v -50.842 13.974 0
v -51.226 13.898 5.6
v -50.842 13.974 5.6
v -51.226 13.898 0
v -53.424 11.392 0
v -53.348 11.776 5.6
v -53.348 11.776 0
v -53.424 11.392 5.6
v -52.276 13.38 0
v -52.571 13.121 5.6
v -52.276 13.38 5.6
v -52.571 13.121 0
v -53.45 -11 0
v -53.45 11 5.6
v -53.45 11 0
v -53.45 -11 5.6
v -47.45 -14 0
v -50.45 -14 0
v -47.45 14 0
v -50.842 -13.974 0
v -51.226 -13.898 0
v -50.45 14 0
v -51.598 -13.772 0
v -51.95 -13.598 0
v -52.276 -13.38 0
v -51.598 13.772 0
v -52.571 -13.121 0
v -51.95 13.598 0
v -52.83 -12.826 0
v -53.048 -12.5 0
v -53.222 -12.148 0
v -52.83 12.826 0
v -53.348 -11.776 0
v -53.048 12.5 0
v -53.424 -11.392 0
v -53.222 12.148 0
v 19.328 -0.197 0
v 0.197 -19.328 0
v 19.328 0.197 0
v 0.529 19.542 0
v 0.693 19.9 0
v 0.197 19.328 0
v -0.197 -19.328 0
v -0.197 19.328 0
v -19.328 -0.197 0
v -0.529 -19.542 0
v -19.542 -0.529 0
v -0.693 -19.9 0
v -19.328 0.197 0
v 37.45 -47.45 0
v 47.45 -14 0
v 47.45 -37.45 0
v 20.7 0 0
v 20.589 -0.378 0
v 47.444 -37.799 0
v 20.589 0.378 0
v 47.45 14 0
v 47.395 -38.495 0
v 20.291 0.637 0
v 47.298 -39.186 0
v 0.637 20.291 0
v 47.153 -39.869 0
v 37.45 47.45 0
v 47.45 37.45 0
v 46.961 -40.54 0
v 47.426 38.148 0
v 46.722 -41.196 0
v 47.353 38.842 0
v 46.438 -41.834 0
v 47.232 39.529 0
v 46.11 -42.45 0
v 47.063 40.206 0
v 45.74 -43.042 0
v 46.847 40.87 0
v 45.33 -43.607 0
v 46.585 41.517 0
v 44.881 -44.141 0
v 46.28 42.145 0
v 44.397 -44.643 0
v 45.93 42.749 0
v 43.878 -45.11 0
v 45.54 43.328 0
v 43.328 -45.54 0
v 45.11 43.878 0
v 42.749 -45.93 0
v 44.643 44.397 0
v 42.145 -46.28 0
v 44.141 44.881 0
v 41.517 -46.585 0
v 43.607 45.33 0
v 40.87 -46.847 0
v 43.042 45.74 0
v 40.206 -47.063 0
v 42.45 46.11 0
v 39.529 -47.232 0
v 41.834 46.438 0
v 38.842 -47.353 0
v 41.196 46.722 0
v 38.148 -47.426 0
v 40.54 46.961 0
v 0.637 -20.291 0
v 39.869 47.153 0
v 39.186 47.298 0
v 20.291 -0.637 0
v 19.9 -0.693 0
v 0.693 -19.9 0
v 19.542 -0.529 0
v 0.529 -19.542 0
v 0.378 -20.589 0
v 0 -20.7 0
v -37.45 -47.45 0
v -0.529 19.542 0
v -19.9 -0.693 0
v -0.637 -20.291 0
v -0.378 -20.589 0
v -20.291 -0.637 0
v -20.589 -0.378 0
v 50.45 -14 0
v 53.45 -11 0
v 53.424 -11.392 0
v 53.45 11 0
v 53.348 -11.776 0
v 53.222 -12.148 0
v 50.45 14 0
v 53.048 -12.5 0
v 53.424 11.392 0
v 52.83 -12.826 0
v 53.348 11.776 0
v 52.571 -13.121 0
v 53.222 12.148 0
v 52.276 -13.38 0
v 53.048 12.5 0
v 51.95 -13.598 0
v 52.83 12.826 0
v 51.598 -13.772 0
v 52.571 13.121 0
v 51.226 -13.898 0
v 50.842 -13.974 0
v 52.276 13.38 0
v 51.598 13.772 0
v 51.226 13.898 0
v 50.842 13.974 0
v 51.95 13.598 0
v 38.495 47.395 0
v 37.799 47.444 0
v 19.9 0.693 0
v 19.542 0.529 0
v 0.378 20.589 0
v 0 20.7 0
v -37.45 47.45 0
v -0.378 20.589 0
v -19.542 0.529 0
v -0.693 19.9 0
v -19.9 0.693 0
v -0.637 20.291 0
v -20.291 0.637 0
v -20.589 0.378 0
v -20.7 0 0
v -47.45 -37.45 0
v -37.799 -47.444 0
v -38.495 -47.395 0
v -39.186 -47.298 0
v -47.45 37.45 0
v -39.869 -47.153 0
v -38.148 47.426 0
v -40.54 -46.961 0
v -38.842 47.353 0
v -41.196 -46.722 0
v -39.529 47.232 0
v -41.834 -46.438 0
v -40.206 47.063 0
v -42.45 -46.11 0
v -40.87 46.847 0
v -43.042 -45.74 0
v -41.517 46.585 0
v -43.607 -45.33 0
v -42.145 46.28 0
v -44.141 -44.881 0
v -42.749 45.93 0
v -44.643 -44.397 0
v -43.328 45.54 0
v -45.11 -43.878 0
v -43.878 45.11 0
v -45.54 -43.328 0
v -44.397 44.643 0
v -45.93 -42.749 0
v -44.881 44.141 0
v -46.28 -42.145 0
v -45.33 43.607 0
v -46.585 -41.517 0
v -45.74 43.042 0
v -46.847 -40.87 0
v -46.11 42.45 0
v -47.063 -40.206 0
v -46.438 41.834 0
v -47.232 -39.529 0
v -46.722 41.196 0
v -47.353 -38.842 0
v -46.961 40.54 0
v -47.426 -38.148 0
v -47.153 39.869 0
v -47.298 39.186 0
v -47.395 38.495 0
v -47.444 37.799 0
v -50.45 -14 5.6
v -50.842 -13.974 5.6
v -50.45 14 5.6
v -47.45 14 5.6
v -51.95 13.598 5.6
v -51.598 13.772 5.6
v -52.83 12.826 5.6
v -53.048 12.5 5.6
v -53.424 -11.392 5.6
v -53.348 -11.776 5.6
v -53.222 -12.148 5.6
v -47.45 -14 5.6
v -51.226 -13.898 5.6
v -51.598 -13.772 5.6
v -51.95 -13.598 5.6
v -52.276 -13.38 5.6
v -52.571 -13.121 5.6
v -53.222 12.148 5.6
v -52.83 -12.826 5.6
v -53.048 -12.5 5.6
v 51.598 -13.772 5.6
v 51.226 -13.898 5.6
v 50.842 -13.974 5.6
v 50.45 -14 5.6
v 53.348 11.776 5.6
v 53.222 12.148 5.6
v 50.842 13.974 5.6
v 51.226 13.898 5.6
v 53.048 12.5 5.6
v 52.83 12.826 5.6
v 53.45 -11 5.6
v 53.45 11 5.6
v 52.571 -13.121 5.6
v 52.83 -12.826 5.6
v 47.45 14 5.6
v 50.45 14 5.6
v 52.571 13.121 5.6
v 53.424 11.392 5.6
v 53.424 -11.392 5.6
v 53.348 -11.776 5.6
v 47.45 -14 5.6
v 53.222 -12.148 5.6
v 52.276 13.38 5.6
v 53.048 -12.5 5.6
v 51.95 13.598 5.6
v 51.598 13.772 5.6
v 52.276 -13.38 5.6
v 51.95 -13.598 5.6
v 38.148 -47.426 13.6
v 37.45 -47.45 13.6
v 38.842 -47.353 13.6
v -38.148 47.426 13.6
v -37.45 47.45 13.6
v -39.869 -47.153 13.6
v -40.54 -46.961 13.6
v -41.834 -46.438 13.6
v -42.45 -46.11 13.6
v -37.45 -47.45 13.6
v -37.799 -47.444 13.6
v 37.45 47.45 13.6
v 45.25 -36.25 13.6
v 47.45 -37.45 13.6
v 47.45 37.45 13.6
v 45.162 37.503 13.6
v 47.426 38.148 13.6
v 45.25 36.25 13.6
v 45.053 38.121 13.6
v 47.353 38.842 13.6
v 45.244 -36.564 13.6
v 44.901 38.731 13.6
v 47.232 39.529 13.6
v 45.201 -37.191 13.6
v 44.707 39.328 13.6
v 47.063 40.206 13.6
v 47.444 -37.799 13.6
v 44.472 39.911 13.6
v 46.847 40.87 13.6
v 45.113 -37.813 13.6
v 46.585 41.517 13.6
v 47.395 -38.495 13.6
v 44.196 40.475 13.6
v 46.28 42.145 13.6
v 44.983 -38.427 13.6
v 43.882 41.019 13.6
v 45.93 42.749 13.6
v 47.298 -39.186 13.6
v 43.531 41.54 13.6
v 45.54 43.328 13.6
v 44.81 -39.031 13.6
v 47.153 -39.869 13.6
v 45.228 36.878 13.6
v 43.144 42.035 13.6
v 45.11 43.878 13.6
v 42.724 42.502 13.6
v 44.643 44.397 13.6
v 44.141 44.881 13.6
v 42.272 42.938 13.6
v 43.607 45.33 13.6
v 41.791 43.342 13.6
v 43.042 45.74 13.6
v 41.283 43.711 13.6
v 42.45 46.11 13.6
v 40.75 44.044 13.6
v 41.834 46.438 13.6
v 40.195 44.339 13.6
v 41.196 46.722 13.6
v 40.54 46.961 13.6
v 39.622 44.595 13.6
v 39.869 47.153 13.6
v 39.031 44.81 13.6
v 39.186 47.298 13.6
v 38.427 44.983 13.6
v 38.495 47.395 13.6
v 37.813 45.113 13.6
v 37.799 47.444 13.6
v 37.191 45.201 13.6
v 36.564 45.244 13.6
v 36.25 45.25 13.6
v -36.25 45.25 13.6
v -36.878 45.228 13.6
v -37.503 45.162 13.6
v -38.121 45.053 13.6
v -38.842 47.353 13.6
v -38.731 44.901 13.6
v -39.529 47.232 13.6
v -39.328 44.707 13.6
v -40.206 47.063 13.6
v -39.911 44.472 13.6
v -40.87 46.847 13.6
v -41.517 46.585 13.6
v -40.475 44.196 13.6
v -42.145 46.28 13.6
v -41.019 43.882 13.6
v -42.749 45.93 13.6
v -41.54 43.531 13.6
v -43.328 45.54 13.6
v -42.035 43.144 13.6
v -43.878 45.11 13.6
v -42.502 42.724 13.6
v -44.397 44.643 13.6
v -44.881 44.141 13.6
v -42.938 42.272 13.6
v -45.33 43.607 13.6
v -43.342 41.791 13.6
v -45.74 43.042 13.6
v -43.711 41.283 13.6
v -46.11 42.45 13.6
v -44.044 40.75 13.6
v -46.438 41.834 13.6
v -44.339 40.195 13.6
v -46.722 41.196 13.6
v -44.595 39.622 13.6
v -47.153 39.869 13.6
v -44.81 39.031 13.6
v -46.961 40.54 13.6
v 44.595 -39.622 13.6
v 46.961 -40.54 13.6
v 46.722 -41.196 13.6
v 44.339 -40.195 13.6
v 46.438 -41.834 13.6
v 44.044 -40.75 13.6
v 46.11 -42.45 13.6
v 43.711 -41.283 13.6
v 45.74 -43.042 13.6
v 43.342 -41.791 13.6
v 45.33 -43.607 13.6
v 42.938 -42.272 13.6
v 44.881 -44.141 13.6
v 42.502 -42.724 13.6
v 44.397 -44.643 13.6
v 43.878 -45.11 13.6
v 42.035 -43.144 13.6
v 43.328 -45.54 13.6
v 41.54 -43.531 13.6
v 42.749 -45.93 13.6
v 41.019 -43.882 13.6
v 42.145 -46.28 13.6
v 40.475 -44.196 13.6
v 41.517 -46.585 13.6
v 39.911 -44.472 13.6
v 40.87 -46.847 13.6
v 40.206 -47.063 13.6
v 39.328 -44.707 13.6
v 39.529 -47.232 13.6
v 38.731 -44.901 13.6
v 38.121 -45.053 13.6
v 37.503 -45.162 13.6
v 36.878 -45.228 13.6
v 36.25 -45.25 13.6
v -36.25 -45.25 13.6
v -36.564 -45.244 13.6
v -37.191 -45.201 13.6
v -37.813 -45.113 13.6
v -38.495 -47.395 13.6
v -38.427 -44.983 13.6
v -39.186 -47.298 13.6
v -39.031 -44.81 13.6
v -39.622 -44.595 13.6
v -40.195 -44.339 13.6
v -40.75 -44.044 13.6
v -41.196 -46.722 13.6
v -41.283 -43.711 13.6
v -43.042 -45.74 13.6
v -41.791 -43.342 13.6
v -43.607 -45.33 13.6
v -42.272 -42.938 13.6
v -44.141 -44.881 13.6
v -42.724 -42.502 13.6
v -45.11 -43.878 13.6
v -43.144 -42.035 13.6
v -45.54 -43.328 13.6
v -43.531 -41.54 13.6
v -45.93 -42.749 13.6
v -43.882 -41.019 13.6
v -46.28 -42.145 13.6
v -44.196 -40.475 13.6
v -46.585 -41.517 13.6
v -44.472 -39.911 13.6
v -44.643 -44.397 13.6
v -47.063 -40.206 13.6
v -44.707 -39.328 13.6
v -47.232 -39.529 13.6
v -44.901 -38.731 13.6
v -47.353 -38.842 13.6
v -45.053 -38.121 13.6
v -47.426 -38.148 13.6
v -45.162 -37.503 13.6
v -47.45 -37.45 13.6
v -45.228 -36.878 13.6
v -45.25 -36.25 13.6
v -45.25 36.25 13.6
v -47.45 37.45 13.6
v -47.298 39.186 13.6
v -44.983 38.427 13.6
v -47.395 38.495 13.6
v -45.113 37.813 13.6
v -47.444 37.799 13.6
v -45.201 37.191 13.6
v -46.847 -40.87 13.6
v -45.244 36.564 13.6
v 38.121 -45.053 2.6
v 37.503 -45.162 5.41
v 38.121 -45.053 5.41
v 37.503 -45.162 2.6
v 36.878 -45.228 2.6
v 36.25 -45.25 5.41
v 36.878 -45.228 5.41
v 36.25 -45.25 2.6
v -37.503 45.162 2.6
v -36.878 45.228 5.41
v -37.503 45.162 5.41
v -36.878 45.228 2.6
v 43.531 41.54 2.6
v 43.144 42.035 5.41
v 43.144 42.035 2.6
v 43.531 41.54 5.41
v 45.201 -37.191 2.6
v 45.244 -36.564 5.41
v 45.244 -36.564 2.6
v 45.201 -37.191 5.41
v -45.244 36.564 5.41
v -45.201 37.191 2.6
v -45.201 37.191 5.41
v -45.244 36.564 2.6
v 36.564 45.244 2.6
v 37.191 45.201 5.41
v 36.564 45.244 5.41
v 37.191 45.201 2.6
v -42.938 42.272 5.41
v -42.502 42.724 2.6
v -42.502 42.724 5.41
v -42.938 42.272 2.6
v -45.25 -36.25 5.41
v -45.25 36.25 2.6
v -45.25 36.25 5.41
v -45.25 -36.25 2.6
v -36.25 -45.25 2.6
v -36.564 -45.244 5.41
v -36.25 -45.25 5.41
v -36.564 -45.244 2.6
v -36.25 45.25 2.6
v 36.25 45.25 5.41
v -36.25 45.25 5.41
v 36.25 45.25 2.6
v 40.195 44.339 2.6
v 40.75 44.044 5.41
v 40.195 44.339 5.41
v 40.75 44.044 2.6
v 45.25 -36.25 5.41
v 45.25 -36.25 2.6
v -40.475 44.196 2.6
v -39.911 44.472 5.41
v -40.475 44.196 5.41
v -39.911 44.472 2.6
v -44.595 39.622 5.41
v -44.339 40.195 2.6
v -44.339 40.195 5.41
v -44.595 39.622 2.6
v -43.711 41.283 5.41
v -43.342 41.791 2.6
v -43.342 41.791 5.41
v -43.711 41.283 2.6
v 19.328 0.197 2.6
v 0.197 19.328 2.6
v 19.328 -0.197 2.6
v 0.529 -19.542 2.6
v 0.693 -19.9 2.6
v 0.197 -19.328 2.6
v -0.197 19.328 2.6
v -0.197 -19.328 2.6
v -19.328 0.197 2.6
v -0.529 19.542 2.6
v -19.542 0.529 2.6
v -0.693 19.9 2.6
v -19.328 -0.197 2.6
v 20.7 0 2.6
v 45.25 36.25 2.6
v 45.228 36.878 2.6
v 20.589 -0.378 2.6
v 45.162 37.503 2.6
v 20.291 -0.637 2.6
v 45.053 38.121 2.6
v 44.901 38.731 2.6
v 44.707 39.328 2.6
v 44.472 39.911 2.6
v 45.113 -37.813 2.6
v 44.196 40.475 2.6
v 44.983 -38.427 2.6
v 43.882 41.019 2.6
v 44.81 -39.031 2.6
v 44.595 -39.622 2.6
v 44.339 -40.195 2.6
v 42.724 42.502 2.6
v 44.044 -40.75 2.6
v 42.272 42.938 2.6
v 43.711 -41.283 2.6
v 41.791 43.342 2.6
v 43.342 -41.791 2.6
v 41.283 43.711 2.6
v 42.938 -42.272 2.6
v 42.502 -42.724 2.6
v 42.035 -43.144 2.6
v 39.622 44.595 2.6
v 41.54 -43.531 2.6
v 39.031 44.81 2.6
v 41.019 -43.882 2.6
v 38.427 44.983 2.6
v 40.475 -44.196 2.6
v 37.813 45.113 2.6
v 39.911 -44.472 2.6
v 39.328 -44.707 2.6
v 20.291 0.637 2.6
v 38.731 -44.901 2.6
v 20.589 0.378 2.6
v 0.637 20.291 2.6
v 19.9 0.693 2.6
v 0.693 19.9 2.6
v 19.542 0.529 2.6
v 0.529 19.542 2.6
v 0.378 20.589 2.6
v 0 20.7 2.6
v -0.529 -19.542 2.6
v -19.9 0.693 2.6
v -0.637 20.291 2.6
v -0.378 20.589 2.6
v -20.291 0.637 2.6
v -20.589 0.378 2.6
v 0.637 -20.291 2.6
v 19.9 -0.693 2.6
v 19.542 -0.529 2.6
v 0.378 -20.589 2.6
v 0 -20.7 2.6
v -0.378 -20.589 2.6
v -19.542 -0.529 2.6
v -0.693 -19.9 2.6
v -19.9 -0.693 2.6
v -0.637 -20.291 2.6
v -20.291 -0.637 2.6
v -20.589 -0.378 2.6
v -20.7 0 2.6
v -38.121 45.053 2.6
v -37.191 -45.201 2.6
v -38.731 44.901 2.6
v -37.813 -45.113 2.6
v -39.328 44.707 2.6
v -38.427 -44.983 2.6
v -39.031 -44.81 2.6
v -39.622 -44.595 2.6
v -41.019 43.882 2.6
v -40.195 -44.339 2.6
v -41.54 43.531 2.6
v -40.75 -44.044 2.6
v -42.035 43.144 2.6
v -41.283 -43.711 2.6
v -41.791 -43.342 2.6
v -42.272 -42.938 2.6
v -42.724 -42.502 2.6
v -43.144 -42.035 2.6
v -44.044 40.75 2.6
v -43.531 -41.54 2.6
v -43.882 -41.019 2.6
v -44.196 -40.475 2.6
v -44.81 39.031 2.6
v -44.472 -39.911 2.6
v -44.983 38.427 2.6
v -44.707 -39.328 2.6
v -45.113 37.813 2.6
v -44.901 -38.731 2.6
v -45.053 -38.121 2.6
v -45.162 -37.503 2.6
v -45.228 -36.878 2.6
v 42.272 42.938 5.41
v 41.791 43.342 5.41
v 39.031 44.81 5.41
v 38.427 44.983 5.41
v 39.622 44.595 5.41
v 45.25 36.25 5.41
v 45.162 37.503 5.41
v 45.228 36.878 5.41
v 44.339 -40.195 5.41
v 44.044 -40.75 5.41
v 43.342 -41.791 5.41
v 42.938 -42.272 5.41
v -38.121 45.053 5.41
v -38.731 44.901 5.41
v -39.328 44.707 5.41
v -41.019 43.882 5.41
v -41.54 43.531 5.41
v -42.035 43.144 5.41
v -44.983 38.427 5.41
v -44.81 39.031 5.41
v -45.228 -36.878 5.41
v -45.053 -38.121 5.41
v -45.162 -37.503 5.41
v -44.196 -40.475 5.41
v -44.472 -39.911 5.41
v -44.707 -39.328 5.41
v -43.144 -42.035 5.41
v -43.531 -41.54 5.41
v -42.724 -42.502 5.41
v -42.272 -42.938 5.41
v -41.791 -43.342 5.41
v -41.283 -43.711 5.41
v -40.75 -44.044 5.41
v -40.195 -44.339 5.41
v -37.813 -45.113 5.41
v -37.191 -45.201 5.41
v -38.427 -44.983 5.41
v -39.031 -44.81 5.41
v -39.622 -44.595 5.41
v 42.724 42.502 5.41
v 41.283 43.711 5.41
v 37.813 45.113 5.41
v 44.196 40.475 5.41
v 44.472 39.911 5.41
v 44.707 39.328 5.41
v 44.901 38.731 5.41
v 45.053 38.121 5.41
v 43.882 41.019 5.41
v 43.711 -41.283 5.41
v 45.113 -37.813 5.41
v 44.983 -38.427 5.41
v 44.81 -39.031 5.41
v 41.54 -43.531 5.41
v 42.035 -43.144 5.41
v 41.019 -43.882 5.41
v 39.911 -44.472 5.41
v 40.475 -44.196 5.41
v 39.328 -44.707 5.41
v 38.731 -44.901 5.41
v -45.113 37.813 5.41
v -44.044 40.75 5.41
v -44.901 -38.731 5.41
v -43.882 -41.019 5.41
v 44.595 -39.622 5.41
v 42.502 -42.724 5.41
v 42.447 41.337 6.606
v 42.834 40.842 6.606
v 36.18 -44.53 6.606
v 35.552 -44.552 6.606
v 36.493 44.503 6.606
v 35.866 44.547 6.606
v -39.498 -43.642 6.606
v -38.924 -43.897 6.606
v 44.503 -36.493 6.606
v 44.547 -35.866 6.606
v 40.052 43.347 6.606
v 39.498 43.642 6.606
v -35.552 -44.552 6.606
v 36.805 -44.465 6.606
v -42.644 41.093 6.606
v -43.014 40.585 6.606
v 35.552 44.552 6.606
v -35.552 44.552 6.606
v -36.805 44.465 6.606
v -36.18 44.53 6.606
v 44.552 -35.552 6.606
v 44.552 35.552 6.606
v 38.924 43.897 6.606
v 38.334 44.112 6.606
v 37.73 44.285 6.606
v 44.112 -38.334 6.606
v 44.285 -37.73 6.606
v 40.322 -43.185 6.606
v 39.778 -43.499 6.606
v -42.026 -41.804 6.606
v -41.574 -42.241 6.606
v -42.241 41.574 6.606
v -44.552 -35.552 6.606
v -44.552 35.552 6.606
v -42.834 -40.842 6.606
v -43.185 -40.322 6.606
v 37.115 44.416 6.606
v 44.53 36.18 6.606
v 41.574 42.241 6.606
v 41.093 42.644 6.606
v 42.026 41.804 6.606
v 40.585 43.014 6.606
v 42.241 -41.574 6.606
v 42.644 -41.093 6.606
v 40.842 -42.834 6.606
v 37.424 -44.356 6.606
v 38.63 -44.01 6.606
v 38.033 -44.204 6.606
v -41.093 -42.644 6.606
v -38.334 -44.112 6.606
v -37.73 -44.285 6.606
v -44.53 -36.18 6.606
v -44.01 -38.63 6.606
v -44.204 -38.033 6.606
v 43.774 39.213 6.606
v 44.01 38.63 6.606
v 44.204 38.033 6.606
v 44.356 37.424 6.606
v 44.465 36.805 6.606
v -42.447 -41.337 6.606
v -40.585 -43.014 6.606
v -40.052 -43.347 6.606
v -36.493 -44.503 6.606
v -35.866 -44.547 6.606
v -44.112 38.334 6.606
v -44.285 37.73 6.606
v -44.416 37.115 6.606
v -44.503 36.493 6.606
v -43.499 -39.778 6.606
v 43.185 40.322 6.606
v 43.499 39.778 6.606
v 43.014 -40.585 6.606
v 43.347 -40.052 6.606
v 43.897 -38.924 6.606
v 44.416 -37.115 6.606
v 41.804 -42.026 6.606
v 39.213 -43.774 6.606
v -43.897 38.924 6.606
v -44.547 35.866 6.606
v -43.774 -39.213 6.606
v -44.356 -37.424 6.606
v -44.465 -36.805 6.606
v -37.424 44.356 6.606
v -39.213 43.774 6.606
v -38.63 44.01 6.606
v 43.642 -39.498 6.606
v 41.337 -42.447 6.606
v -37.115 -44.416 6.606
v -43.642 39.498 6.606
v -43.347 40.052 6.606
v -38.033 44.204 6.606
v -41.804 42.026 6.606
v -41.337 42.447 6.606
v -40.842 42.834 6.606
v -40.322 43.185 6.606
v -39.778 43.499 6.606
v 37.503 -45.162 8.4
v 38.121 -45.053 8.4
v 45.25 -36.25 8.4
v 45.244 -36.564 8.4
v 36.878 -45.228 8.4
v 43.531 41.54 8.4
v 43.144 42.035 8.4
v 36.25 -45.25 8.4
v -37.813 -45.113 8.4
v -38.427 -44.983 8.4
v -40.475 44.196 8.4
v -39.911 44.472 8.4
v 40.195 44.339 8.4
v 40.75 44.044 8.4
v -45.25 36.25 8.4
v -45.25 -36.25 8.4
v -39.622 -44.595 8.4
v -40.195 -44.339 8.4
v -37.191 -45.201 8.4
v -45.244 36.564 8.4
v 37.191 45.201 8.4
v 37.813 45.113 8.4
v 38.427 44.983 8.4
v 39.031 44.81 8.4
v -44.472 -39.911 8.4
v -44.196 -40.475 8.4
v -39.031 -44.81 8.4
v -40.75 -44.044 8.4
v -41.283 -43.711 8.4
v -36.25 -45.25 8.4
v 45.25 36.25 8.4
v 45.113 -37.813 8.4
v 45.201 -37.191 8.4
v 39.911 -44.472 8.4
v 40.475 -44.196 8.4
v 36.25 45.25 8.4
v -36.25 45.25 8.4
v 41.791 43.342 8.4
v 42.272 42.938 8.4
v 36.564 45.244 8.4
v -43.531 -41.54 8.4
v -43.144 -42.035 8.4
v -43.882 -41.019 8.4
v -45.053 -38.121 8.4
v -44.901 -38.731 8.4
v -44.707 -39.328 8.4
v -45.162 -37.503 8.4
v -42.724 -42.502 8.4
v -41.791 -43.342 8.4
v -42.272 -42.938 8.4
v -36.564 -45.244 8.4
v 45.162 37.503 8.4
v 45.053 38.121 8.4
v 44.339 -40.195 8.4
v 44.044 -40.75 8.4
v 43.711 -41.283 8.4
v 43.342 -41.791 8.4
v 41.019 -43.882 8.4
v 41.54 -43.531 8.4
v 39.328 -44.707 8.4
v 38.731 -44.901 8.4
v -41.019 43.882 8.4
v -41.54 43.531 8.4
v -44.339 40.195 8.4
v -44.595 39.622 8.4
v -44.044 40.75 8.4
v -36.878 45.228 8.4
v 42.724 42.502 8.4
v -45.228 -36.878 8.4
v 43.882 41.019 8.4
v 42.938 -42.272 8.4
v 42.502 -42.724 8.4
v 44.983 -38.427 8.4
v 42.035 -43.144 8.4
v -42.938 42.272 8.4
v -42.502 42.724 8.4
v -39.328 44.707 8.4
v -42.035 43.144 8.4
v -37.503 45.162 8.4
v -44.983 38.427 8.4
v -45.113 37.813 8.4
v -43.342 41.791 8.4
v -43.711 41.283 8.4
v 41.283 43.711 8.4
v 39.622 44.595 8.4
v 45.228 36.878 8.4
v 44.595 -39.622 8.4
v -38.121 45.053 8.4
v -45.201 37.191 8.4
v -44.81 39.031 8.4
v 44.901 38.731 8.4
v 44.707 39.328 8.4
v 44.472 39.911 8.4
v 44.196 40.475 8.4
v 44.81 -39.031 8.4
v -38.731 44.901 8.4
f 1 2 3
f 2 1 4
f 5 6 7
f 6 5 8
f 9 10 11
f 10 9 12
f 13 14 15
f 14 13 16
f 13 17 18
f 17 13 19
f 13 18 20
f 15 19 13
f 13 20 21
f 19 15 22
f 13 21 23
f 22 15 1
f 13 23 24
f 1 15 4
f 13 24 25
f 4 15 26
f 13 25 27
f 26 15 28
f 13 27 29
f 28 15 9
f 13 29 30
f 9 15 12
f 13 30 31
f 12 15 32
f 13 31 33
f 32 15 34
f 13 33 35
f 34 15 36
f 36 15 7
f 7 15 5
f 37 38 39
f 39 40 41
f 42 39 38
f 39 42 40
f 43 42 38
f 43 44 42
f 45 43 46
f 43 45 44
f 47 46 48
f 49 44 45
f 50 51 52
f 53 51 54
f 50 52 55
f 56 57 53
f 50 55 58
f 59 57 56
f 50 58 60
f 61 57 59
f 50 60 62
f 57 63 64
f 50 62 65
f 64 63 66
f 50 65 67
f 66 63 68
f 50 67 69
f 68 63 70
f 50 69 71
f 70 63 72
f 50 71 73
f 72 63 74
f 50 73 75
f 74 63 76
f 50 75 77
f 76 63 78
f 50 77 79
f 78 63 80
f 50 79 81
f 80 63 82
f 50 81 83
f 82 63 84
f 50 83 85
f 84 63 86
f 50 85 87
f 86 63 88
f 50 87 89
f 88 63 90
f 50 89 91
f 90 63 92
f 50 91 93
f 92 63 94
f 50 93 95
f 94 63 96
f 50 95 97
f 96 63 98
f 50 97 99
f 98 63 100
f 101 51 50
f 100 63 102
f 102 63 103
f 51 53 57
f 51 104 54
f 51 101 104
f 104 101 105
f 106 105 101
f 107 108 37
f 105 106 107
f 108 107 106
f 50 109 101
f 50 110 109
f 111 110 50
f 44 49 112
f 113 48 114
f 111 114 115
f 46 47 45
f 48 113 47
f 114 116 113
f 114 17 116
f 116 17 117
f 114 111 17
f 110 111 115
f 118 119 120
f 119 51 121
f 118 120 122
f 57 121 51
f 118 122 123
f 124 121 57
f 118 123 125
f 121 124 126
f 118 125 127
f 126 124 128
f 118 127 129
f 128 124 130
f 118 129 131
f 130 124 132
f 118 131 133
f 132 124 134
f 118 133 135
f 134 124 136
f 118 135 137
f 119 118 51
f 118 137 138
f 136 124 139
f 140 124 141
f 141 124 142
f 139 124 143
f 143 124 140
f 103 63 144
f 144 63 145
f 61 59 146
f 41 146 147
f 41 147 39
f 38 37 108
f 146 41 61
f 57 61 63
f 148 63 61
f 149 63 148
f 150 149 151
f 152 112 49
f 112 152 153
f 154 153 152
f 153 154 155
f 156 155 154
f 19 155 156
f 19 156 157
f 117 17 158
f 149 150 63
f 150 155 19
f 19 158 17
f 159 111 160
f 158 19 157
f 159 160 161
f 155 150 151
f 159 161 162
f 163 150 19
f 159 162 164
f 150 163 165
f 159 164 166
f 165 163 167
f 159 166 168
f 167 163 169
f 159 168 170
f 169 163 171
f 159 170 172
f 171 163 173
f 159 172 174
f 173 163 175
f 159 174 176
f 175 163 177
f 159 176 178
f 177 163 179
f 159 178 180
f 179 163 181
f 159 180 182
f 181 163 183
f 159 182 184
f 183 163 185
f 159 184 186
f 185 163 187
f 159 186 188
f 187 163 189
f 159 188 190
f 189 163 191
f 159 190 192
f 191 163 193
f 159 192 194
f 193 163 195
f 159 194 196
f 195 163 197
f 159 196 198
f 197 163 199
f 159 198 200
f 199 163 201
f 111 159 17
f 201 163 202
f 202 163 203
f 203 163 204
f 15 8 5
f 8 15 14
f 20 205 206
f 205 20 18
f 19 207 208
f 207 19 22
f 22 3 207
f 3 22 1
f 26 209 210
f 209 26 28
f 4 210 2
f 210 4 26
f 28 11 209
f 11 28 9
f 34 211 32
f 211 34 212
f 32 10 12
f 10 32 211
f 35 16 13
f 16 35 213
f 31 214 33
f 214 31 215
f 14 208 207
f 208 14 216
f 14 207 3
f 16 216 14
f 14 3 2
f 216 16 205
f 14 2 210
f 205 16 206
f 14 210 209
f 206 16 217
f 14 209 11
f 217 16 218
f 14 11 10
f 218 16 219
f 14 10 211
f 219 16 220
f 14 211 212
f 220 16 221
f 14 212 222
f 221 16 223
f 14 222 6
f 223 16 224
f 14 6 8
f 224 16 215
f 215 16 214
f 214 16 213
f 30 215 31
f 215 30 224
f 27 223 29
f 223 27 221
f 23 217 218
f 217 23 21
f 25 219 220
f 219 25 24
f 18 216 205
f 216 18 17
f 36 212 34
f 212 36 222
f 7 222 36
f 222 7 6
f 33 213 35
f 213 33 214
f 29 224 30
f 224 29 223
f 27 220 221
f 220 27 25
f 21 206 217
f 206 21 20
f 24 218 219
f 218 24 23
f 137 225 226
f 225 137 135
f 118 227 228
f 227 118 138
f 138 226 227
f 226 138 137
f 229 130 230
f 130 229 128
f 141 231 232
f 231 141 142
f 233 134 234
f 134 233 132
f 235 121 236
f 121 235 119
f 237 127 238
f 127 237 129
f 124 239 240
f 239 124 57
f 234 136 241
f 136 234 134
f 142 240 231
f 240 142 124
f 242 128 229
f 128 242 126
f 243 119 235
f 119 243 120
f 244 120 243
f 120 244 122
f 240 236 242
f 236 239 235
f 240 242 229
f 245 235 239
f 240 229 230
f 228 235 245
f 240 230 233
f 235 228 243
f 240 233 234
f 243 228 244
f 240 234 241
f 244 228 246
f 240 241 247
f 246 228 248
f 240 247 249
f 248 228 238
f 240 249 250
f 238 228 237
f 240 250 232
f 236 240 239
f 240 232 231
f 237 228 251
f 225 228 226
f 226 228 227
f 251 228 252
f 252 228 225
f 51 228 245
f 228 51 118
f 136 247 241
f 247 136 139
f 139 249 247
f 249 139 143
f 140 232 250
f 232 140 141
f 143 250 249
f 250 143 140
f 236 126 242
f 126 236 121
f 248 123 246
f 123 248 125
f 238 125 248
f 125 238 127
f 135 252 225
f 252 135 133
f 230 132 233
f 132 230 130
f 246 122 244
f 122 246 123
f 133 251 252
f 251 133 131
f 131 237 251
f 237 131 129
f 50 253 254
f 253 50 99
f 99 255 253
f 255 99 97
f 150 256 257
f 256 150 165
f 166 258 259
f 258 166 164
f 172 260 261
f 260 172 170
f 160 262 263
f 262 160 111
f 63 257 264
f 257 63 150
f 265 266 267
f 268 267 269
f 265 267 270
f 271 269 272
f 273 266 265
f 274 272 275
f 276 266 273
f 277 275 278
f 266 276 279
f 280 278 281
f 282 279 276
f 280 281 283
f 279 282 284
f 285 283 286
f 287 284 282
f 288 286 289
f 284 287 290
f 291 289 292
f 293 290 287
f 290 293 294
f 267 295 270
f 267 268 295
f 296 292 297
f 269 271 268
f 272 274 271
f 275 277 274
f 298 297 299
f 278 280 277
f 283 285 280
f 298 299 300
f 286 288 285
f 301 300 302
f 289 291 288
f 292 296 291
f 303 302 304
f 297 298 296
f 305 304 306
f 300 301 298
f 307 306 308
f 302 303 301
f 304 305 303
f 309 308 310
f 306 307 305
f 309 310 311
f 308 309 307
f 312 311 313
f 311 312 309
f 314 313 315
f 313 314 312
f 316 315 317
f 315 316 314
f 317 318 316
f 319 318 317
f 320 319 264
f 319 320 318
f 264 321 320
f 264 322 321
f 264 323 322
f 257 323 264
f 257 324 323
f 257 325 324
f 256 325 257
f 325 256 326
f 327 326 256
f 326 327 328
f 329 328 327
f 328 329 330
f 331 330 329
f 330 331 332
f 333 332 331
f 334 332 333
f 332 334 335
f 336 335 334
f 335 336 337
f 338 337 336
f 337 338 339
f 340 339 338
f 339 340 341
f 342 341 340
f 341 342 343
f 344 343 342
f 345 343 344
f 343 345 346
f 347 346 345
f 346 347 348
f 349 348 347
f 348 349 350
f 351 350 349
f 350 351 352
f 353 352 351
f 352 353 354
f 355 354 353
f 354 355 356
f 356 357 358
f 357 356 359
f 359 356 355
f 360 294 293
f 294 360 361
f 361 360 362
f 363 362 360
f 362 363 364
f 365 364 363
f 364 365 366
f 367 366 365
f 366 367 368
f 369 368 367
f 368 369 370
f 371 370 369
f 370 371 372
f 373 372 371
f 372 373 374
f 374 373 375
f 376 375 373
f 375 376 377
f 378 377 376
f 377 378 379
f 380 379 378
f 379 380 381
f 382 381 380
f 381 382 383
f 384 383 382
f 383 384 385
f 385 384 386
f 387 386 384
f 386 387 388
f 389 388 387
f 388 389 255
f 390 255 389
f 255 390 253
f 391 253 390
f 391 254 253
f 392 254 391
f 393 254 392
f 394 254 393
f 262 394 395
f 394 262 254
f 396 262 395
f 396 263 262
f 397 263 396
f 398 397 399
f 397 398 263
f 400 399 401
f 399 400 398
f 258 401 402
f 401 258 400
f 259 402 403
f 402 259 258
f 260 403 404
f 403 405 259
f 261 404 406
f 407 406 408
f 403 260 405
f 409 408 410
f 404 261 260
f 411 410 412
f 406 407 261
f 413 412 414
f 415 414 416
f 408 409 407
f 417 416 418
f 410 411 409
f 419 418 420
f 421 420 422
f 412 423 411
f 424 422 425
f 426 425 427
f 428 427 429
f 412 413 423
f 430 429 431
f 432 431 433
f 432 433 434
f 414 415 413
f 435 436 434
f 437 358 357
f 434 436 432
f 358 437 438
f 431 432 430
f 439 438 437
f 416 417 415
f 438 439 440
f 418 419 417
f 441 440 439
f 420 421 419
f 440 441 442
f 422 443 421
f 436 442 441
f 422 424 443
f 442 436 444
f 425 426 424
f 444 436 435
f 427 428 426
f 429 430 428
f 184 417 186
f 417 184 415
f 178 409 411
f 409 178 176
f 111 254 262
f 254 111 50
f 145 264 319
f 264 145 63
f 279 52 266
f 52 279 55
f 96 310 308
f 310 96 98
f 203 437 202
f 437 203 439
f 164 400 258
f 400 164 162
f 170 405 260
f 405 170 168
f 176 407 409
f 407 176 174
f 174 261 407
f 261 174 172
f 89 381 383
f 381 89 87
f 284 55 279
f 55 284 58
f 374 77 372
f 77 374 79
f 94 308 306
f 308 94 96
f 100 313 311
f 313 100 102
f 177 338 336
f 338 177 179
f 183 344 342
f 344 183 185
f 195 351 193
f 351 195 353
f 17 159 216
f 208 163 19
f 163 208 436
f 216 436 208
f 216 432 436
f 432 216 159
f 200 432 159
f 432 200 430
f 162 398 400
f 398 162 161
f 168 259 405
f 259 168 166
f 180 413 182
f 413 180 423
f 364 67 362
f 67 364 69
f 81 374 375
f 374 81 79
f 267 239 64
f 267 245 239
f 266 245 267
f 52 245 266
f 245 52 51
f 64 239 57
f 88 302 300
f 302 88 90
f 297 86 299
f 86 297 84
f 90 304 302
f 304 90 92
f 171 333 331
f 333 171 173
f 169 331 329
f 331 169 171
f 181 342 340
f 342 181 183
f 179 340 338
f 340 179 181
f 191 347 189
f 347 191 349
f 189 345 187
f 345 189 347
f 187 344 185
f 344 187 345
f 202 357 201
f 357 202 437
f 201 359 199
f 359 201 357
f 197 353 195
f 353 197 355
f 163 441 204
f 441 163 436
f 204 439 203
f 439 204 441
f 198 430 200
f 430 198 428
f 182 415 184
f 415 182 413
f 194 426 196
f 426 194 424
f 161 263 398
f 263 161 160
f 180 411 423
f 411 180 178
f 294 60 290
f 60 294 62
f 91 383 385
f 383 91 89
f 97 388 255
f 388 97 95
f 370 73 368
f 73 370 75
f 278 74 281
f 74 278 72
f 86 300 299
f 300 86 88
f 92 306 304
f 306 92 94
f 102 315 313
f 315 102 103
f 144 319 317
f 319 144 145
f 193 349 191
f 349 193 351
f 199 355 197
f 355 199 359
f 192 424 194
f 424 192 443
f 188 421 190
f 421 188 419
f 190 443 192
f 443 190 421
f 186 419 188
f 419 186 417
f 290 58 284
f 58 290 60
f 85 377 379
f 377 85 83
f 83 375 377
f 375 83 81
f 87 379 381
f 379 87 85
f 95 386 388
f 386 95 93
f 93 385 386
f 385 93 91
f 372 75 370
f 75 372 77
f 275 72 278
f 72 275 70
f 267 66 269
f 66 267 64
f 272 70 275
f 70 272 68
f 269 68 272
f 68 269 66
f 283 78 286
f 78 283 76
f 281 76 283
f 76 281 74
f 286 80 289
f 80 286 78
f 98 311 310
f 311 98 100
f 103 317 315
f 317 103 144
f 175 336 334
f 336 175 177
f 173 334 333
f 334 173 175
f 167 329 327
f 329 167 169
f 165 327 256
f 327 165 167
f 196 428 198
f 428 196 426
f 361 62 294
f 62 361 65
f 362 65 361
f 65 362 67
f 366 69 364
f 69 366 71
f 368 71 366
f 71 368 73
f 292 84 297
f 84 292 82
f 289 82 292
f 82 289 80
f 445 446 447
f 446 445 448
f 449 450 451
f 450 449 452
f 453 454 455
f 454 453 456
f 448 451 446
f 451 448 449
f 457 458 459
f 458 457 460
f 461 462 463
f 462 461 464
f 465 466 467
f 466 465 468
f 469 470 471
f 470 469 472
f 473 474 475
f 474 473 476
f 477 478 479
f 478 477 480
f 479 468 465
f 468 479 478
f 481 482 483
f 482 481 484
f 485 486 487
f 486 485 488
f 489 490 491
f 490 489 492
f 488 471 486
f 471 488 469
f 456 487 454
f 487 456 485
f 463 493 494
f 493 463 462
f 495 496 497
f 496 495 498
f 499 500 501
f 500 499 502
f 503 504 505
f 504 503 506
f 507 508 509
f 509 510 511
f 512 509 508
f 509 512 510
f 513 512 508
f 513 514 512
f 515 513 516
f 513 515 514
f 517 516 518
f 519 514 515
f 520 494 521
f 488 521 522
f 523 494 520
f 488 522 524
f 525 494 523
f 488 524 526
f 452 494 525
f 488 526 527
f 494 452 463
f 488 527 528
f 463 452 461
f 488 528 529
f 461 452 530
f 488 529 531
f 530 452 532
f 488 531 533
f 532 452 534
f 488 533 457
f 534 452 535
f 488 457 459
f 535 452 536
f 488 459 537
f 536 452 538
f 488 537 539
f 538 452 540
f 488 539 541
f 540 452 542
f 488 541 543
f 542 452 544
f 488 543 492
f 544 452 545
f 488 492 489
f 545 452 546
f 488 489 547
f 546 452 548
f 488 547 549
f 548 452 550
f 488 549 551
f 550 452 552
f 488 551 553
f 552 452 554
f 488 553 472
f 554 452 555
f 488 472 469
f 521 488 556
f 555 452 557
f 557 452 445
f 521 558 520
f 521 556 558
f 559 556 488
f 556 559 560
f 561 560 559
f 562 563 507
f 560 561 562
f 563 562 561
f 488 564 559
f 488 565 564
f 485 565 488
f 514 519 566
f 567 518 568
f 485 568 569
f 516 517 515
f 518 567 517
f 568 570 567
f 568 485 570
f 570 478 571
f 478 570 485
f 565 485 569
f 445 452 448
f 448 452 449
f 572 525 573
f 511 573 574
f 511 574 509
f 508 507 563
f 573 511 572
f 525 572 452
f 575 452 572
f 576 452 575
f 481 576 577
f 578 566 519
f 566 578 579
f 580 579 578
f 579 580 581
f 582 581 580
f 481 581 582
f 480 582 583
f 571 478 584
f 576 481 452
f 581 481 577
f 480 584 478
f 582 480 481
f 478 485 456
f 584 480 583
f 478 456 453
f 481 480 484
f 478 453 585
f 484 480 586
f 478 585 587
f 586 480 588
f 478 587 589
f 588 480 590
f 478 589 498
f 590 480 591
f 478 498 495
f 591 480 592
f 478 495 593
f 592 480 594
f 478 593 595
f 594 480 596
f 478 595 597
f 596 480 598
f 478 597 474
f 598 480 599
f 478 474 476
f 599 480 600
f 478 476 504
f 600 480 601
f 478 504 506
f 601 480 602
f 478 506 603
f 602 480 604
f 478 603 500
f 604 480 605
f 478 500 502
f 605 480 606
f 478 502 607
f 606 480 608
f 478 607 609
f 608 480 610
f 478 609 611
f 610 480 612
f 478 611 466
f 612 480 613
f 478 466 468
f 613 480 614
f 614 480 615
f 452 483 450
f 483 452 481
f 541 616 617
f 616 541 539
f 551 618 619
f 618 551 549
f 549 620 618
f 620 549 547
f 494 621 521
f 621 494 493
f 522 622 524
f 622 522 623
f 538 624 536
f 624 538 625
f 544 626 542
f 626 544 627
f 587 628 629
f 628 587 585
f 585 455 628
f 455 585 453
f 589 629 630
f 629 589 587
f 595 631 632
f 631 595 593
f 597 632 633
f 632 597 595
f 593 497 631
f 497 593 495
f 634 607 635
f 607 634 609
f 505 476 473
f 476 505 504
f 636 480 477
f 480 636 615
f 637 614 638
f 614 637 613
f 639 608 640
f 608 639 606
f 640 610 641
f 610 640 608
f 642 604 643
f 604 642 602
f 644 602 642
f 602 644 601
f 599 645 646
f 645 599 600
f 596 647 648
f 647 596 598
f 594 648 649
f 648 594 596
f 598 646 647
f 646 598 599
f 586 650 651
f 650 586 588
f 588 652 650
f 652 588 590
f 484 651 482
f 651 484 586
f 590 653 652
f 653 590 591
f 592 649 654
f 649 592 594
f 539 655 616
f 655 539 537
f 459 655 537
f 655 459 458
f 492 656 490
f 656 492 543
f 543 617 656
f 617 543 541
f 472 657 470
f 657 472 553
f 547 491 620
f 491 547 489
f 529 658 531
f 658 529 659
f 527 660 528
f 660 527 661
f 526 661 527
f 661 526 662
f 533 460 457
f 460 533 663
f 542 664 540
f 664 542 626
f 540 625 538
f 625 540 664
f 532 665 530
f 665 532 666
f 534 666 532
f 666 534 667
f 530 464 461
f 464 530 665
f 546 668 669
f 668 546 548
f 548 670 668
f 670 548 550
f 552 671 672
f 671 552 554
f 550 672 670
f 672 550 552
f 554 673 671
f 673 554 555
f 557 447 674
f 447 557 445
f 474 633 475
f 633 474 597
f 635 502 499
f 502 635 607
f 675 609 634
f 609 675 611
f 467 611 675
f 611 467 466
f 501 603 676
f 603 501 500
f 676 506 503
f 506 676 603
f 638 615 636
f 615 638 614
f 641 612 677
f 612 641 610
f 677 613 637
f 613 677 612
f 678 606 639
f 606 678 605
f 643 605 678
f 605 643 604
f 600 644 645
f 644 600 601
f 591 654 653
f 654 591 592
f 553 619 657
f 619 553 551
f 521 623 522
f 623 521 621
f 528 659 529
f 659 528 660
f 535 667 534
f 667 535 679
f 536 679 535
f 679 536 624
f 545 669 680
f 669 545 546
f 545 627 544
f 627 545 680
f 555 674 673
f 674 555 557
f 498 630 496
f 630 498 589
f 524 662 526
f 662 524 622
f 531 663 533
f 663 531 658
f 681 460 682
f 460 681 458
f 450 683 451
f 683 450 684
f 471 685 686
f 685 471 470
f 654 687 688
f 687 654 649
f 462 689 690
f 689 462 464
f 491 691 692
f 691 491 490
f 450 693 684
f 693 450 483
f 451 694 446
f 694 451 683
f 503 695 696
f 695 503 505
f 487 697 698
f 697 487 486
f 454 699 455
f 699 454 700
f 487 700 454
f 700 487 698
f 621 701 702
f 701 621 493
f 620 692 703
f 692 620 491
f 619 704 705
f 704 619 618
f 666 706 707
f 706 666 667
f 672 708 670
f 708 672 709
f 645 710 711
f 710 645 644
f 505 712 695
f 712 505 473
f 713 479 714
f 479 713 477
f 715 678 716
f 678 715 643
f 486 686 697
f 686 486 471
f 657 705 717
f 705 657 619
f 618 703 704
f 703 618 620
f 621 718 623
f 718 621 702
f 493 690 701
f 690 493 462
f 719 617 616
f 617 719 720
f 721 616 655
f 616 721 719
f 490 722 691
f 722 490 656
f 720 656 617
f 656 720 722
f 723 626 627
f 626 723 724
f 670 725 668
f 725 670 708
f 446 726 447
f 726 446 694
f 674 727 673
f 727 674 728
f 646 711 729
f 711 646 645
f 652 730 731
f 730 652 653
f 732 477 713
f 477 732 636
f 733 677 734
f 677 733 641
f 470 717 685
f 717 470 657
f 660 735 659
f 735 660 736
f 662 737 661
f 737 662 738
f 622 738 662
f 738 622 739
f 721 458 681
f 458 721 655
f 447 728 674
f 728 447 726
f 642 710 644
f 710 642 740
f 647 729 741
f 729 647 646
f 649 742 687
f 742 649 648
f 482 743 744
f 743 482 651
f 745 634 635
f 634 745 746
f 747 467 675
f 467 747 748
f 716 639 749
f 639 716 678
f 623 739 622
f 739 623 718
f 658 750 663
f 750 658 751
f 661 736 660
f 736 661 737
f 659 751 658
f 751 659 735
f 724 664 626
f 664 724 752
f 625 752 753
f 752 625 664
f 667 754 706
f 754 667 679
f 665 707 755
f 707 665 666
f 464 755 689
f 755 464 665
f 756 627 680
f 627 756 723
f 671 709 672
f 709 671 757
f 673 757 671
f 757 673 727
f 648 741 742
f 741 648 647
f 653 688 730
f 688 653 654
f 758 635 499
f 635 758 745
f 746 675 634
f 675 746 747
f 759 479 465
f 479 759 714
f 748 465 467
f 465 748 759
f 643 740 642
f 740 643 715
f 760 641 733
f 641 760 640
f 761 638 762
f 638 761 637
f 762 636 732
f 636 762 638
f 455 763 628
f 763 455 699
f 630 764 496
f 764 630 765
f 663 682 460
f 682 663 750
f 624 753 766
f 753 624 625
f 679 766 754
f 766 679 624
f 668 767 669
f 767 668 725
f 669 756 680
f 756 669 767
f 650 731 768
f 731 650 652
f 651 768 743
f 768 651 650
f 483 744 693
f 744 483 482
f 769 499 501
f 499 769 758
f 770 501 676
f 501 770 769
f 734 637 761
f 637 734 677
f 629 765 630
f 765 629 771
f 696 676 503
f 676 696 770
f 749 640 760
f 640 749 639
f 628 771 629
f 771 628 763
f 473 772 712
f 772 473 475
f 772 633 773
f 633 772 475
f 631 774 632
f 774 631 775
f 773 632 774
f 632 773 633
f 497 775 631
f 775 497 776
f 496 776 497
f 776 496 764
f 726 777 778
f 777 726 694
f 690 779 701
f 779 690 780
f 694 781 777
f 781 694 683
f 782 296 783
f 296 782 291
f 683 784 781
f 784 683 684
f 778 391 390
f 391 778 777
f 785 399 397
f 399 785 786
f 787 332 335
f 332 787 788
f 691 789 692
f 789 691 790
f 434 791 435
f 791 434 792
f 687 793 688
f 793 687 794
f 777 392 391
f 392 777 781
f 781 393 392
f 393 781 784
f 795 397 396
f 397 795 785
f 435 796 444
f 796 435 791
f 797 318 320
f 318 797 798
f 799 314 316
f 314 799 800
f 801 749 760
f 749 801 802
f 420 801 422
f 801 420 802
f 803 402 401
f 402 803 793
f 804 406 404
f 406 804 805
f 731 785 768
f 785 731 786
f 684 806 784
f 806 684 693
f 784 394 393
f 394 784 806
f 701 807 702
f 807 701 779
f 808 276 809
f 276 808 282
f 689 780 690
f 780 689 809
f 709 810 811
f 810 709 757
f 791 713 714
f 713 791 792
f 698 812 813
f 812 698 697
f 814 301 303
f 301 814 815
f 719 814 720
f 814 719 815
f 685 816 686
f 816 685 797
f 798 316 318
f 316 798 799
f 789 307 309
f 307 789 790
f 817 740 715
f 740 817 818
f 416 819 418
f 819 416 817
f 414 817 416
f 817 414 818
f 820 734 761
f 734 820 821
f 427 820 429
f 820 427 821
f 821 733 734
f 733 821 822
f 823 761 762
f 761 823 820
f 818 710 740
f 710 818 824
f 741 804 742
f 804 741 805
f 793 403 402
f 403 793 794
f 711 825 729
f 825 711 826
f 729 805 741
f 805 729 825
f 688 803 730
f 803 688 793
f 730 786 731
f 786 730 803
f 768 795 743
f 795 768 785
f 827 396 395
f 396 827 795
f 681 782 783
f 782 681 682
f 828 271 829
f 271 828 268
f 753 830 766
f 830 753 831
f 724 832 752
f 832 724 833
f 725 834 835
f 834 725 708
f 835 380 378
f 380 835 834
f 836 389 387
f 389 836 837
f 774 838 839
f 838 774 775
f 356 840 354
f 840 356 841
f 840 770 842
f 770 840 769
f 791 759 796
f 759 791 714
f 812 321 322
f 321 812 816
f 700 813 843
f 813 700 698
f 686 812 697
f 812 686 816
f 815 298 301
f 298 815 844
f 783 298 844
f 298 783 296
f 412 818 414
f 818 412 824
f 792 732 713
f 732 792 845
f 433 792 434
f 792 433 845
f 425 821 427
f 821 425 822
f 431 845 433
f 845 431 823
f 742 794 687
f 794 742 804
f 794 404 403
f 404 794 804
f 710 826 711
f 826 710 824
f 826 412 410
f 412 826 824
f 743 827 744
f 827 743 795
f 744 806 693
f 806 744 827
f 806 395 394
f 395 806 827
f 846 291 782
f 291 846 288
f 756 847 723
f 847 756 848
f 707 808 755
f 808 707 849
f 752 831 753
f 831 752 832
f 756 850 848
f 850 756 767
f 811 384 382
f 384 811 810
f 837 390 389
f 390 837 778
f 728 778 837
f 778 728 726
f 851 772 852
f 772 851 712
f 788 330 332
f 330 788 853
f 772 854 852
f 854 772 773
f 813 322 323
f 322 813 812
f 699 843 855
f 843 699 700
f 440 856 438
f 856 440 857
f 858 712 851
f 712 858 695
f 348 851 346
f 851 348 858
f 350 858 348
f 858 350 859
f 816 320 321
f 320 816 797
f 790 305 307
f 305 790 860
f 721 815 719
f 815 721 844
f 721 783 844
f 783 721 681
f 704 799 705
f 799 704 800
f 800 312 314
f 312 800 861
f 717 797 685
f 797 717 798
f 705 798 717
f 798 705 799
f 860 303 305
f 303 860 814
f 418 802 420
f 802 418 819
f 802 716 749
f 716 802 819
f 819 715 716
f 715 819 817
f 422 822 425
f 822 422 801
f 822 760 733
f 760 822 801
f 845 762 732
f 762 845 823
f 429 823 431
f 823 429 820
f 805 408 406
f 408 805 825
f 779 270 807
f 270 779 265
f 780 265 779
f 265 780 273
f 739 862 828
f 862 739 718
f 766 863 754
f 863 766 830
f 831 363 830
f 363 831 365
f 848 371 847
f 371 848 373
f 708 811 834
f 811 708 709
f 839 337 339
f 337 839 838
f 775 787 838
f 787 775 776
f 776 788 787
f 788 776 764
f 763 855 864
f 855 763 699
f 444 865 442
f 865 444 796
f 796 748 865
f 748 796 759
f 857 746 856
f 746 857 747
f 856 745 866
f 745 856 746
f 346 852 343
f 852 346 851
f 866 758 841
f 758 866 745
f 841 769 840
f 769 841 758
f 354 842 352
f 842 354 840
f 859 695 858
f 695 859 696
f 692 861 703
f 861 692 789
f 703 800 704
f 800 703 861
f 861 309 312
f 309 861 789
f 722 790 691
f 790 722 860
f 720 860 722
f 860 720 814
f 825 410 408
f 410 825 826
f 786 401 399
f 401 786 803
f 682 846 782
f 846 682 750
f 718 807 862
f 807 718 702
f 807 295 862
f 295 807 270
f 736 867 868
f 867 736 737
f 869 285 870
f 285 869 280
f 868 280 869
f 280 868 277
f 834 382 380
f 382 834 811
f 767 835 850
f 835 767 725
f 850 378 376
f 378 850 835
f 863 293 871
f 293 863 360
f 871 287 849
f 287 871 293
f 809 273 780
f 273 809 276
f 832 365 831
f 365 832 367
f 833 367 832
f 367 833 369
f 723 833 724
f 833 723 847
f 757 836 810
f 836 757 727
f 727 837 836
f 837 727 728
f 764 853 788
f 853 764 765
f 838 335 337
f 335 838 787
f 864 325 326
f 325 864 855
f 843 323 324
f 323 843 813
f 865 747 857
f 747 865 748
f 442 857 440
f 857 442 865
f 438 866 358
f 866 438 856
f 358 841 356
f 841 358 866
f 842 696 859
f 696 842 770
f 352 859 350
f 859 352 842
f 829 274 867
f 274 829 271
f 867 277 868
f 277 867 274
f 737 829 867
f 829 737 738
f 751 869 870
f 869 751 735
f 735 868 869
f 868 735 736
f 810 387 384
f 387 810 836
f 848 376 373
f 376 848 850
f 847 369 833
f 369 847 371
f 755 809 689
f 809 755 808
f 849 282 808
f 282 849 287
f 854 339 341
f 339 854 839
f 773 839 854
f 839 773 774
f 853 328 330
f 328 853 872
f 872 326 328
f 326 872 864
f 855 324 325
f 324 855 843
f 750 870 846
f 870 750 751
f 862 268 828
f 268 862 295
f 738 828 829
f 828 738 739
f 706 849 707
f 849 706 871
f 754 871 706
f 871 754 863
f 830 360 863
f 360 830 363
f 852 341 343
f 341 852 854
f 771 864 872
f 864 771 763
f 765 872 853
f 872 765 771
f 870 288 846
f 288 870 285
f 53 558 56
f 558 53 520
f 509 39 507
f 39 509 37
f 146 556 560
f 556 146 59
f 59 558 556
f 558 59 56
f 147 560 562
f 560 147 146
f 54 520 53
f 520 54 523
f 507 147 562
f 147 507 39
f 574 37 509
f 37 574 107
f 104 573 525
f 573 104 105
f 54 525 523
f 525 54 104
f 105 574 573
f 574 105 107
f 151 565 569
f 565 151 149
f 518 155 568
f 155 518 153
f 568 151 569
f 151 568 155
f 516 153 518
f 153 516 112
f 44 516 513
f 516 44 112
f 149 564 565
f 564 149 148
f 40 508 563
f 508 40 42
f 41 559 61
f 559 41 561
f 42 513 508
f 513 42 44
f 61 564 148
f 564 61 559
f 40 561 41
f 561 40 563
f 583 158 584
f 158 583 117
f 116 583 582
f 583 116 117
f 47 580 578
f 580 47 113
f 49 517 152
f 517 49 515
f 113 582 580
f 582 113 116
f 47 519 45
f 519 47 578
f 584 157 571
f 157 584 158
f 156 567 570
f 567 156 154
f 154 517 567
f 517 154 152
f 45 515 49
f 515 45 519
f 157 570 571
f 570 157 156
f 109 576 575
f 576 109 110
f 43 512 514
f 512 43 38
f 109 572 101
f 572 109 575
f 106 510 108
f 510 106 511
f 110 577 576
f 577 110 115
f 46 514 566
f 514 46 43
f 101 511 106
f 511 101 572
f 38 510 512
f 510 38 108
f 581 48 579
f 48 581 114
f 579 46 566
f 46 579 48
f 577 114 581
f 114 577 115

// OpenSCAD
// =====================================================================
//  AquaFeeder -- tampa do funil (encaixa por pressao no aro do funil)
//  Imprimir COMO ESTA (topo na mesa, saia para cima). Sem suporte.
//  Dica: jogue um sache de silica gel dentro do funil -- racao umida
//  empedra e entope a rosca.
// =====================================================================
include <common.scad>

band_od    = hop_top + 4;        // 90 -- aro do funil
skirt_in   = band_od + 0.5 + fit;
skirt_wall = 2.2;
skirt_h    = 11;
top_t      = 2.6;
ridge      = 0.7;                // ressalto interno de encaixe
ridge_z    = 4.0;                // logo abaixo do aro do funil (aro = 3mm)

out_sq = skirt_in + 2*skirt_wall;

// cavidade da saia, com uma "cintura" que gera o friso de encaixe
module skirt_cavity() {
    translate([0, 0, top_t])
        rbox(skirt_in, skirt_in, ridge_z - 1.2, 9);
    translate([0, 0, top_t + ridge_z - 1.2]) hull() {
        rbox(skirt_in, skirt_in, 0.01, 9);
        translate([0, 0, 1.2]) rbox(skirt_in - 2*ridge, skirt_in - 2*ridge, 0.01, 9);
    }
    translate([0, 0, top_t + ridge_z]) hull() {
        rbox(skirt_in - 2*ridge, skirt_in - 2*ridge, 0.01, 9);
        translate([0, 0, 1.8]) rbox(skirt_in, skirt_in, 0.01, 9);
    }
    translate([0, 0, top_t + ridge_z + 1.8])
        rbox(skirt_in, skirt_in, skirt_h, 9);
}

module lid() {
    difference() {
        union() {
            rbox(out_sq, out_sq, top_t + skirt_h, 10);
            // abas para tirar a tampa com o dedo
            for (s = [-1, 1])
                translate([s * (out_sq/2 - 2), 0, 0])
                    rbox(16, 28, top_t + 3.0, 3);
        }
        skirt_cavity();
        // respiro (equaliza pressao sem deixar entrar umidade demais)
        for (a = [0, 90, 180, 270])
            rotate([0, 0, a]) translate([20, 0, -1]) cylinder(d = 1.4, h = top_t + 2);
    }
}

lid();
